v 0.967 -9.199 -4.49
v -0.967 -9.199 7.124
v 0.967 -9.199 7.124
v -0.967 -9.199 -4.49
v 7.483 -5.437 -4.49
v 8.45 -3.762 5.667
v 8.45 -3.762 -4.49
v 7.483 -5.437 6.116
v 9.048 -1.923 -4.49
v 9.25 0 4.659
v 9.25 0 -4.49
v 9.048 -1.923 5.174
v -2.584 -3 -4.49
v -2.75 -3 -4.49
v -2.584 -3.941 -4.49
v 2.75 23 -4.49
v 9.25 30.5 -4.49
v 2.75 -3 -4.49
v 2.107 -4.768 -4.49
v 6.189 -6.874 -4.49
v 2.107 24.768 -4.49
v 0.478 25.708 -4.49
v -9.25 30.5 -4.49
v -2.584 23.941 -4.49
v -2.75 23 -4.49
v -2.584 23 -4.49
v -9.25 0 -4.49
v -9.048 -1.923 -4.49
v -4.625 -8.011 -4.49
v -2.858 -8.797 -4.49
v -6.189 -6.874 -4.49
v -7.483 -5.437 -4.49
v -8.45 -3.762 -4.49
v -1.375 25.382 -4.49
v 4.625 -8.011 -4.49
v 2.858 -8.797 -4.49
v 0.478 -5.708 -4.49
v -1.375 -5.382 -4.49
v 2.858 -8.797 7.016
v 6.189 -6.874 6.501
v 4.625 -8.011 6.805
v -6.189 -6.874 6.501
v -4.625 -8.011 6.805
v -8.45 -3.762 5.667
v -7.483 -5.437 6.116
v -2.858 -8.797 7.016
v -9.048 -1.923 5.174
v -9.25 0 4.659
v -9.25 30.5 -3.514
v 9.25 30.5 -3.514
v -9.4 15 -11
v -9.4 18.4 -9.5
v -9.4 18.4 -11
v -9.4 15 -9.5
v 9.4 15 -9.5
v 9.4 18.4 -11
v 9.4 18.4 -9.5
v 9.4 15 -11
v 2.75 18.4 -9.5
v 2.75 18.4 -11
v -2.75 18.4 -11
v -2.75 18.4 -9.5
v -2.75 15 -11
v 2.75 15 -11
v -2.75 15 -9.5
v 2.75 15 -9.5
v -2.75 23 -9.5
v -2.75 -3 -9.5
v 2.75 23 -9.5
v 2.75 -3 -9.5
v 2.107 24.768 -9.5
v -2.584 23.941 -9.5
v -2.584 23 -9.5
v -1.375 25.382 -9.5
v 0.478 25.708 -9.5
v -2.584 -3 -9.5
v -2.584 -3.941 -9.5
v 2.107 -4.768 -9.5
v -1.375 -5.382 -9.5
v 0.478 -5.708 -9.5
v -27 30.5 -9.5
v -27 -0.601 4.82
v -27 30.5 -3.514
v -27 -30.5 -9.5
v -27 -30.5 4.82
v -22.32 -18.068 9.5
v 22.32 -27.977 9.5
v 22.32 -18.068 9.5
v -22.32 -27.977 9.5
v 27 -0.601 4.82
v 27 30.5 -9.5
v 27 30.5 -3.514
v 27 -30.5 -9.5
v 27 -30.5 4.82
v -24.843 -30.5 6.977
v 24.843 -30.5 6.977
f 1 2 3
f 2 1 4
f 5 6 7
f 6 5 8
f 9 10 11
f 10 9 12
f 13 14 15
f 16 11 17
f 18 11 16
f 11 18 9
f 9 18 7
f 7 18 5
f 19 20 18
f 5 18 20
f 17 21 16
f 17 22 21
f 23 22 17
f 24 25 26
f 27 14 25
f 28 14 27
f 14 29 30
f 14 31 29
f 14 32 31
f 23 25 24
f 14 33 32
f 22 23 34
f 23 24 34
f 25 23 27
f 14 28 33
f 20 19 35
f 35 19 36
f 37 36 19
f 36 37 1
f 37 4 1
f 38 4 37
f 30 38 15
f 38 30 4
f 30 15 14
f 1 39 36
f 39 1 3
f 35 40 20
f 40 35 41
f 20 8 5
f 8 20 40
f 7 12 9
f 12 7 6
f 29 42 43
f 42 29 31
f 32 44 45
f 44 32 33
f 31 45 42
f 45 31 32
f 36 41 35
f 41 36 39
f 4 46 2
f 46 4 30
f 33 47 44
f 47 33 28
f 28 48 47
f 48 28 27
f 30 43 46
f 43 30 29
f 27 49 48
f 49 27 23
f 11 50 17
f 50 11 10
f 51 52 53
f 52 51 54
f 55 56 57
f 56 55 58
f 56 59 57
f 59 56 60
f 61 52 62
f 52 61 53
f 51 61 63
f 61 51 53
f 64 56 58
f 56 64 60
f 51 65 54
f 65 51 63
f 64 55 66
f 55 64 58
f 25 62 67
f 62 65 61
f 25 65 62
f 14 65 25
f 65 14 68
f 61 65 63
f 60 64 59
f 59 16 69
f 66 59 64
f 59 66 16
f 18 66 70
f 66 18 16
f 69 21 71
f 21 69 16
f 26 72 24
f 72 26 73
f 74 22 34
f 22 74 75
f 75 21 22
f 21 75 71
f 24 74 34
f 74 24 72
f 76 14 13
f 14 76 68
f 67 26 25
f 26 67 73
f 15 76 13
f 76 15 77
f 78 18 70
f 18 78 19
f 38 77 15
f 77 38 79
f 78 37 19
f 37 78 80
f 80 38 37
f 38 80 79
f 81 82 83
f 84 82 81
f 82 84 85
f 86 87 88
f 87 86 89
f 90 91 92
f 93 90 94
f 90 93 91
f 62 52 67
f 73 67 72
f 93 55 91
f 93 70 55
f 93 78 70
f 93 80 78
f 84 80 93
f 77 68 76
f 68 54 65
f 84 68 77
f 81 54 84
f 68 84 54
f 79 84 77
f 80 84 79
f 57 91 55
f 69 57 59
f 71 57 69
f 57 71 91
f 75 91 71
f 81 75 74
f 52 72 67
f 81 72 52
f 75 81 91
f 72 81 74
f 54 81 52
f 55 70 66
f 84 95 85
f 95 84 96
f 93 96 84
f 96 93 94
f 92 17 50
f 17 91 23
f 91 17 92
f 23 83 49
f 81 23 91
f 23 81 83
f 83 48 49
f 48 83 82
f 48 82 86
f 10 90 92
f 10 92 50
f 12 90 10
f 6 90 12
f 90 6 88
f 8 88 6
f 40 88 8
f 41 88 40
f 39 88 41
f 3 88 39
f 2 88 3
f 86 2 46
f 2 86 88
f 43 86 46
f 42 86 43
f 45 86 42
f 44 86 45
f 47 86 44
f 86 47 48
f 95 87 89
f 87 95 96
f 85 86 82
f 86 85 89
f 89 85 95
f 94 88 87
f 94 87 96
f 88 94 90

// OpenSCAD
// kube 54x61x19
cube_width = 54;
cube_depth = 61;
cube_height = 19;

slisse_diam = 18.5;
slisse_height = 14;
slisse_depth = 33;

spor_tykkelse = 1.6;
spor_dybde = 3.4;

SlisseSpor_bredde = 5.5;

module Slisse (diam, height, depth) {
    cylinder(h = height, d = diam, center = true);
    translate([0, depth/2, 0]) {
        cube([diam, depth, height], center = true);
    }
    
};

module Spor (tykkelse, dybde) {
    translate_z = -(cube_height/2)-(tykkelse/2) + 0.1;
    translate_y = cube_depth/2 + (dybde/2) - 15.5;
    translate([0, translate_y, translate_z]) {
        cube([18.8, dybde, tykkelse], center = true);
    }
};

module SlisseSpor (bredde) {
    height = cube_height - slisse_height + 5;
    slissespor_length = slisse_depth-7;
    translate_y = slissespor_length / 2;
    translate([0,translate_y,0]) {
        cylinder(h = height, d = bredde, center = true);
    }
    cube([bredde, slissespor_length, height], center = true);
    translate([0,-translate_y,0]) {
        cylinder(h = height, d = bredde, center = true);
    }
}

module Cutaway(vinkel = 45, translate_y = 0, translate_z = 0, translate_x = 0, vector = [1,0,0]) {
    rotate(a=-vinkel, v=vector) {
        translate([translate_x, translate_y, translate_z]) {
            #cube([cube_width+10, cube_depth, 15], center = true);
        }    
    }
};


difference() {
    cube([cube_width, cube_depth, cube_height], center = true);
    translate([0, 0, ((cube_height - slisse_height) / 2) + 0.01]) {
        Slisse(slisse_diam, slisse_height, slisse_depth);
    }
    translate([0, 10, -cube_height/2 + 0.1]) {
        SlisseSpor(bredde = SlisseSpor_bredde);
    }
    Cutaway(vinkel=15, translate_y = cube_depth / 2 - 20, translate_z = 12);
    Cutaway(vinkel=-45, translate_y = -40, translate_z = 34);
    Cutaway(translate_y = -30, translate_z = 30, translate_x = -10, vector = [0,1,0]);
    Cutaway(vinkel = -45, translate_y = -30, translate_z = 30, translate_x = 20, vector = [0,1,0]);
};
difference() {
   #Spor(tykkelse = spor_tykkelse, dybde = spor_dybde);
    translate([0, 15, -10]) {
        cube([SlisseSpor_bredde,15,10], center = true);
    }
}
